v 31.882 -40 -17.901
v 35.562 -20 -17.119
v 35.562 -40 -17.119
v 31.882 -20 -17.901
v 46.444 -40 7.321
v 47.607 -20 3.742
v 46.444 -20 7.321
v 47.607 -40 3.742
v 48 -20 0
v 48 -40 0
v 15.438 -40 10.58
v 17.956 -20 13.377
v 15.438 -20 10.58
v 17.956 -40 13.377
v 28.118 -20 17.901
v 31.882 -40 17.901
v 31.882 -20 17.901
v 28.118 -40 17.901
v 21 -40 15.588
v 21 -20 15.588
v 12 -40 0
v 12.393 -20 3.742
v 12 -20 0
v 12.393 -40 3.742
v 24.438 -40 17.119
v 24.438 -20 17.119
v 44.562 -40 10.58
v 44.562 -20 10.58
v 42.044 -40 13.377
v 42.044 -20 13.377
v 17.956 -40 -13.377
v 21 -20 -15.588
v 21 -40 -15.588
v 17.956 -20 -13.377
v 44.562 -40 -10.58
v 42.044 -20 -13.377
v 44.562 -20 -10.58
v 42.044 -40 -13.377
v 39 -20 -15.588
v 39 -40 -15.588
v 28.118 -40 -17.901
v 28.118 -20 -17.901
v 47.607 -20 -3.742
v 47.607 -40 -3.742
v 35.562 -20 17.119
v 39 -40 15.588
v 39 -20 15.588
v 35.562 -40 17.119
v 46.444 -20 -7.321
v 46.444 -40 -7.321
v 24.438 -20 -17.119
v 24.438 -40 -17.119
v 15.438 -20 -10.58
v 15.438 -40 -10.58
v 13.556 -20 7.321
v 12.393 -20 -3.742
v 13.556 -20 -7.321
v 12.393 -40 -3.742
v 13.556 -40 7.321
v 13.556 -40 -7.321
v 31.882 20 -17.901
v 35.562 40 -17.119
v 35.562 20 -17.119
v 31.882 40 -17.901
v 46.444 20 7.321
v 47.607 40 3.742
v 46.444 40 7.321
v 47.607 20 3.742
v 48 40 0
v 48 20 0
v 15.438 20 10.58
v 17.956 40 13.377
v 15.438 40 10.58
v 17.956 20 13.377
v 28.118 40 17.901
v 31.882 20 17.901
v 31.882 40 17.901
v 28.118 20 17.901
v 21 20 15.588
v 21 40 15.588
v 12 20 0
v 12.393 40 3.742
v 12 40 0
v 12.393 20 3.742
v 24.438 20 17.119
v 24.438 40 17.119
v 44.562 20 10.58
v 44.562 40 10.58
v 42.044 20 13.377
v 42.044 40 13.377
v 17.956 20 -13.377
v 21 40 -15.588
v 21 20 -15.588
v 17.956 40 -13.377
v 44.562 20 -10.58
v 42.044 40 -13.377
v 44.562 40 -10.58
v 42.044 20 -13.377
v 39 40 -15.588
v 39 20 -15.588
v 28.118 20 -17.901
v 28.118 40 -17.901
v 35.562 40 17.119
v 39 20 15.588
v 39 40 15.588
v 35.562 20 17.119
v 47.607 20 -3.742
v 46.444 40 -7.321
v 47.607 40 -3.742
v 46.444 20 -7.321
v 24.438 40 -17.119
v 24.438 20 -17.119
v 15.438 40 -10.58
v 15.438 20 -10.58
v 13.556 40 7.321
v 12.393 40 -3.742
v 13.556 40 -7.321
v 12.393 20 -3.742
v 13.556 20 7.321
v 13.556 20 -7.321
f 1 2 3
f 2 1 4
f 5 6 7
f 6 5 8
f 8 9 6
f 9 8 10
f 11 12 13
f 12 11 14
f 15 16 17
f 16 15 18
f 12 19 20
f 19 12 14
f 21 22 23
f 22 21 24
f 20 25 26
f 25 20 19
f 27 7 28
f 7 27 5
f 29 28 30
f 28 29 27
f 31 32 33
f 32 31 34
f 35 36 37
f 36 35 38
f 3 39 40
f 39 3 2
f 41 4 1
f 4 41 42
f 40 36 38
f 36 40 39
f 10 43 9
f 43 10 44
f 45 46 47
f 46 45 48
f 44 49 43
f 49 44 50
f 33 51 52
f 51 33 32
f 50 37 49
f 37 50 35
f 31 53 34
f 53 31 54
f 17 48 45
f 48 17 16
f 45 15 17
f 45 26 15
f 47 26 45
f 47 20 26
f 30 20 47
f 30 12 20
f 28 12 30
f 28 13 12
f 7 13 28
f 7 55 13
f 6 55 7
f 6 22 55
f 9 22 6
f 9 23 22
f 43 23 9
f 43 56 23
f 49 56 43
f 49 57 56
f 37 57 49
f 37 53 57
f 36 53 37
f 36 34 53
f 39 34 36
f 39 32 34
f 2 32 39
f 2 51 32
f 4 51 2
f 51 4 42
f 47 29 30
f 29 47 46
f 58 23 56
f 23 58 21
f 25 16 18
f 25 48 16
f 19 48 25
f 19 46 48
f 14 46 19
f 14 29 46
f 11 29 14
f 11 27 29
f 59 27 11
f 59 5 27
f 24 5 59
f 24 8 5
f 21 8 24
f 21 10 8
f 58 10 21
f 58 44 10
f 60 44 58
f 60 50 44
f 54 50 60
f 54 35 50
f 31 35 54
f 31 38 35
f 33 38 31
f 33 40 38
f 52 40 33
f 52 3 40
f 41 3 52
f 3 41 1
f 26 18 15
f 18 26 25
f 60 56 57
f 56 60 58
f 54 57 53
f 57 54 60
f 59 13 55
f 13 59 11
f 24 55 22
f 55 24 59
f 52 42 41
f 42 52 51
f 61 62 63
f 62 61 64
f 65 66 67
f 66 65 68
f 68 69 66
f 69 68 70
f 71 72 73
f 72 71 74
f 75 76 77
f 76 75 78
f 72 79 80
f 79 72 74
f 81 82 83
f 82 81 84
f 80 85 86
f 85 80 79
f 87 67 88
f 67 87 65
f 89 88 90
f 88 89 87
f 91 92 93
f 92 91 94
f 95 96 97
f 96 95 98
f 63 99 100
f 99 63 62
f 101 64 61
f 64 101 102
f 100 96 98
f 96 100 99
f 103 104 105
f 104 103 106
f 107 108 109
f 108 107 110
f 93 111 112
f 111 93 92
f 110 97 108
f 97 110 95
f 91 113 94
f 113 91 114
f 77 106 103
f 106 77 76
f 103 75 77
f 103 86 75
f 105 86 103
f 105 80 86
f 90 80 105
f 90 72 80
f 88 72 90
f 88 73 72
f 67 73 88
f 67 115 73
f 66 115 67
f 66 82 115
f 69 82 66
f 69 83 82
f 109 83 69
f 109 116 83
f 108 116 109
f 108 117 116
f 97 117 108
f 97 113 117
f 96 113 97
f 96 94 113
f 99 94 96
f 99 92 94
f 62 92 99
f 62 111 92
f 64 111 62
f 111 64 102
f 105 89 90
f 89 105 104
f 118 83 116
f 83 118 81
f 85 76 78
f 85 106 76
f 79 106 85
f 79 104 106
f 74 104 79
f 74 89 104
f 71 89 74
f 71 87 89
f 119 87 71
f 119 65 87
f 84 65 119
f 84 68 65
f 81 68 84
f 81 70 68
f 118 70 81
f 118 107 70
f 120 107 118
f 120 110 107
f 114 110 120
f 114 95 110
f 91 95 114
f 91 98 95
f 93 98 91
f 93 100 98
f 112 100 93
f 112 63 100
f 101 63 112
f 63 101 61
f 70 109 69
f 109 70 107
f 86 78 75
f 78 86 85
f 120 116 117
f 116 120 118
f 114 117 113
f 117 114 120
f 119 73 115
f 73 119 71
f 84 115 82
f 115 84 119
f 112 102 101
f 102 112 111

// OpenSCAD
// Tank dimensions
tank_length = 100;
tank_width = 60;
tank_height = 30;





module wheel( track_width,track_height ){
         translate( [0, track_width/2, 0 ] )
         rotate( [ 90, 0, 0 ] ){
         cylinder( h = track_width, r = track_height / 2 );
    } 
}

module fulltrack( w, h, l ){
    track_width = w;
    track_height = h;
    track_length = l;

    translate( [ track_length/3,0, 0 ] )
    wheel(track_width,track_height * 1.8);
}

module tracks(){
    track_width = 10;
    track_height = tank_height / 1.5;
    track_length = tank_length * 0.9;

    translate( [ 0, -tank_width / 2, 0 ] )
        fulltrack( 20, tank_height / 1.5, tank_length * 0.9);
    
    
    translate( [ 0, tank_width / 2, 0 ] )
        fulltrack( 20, tank_height / 1.5, tank_length * 0.9);
    
}


tracks();
